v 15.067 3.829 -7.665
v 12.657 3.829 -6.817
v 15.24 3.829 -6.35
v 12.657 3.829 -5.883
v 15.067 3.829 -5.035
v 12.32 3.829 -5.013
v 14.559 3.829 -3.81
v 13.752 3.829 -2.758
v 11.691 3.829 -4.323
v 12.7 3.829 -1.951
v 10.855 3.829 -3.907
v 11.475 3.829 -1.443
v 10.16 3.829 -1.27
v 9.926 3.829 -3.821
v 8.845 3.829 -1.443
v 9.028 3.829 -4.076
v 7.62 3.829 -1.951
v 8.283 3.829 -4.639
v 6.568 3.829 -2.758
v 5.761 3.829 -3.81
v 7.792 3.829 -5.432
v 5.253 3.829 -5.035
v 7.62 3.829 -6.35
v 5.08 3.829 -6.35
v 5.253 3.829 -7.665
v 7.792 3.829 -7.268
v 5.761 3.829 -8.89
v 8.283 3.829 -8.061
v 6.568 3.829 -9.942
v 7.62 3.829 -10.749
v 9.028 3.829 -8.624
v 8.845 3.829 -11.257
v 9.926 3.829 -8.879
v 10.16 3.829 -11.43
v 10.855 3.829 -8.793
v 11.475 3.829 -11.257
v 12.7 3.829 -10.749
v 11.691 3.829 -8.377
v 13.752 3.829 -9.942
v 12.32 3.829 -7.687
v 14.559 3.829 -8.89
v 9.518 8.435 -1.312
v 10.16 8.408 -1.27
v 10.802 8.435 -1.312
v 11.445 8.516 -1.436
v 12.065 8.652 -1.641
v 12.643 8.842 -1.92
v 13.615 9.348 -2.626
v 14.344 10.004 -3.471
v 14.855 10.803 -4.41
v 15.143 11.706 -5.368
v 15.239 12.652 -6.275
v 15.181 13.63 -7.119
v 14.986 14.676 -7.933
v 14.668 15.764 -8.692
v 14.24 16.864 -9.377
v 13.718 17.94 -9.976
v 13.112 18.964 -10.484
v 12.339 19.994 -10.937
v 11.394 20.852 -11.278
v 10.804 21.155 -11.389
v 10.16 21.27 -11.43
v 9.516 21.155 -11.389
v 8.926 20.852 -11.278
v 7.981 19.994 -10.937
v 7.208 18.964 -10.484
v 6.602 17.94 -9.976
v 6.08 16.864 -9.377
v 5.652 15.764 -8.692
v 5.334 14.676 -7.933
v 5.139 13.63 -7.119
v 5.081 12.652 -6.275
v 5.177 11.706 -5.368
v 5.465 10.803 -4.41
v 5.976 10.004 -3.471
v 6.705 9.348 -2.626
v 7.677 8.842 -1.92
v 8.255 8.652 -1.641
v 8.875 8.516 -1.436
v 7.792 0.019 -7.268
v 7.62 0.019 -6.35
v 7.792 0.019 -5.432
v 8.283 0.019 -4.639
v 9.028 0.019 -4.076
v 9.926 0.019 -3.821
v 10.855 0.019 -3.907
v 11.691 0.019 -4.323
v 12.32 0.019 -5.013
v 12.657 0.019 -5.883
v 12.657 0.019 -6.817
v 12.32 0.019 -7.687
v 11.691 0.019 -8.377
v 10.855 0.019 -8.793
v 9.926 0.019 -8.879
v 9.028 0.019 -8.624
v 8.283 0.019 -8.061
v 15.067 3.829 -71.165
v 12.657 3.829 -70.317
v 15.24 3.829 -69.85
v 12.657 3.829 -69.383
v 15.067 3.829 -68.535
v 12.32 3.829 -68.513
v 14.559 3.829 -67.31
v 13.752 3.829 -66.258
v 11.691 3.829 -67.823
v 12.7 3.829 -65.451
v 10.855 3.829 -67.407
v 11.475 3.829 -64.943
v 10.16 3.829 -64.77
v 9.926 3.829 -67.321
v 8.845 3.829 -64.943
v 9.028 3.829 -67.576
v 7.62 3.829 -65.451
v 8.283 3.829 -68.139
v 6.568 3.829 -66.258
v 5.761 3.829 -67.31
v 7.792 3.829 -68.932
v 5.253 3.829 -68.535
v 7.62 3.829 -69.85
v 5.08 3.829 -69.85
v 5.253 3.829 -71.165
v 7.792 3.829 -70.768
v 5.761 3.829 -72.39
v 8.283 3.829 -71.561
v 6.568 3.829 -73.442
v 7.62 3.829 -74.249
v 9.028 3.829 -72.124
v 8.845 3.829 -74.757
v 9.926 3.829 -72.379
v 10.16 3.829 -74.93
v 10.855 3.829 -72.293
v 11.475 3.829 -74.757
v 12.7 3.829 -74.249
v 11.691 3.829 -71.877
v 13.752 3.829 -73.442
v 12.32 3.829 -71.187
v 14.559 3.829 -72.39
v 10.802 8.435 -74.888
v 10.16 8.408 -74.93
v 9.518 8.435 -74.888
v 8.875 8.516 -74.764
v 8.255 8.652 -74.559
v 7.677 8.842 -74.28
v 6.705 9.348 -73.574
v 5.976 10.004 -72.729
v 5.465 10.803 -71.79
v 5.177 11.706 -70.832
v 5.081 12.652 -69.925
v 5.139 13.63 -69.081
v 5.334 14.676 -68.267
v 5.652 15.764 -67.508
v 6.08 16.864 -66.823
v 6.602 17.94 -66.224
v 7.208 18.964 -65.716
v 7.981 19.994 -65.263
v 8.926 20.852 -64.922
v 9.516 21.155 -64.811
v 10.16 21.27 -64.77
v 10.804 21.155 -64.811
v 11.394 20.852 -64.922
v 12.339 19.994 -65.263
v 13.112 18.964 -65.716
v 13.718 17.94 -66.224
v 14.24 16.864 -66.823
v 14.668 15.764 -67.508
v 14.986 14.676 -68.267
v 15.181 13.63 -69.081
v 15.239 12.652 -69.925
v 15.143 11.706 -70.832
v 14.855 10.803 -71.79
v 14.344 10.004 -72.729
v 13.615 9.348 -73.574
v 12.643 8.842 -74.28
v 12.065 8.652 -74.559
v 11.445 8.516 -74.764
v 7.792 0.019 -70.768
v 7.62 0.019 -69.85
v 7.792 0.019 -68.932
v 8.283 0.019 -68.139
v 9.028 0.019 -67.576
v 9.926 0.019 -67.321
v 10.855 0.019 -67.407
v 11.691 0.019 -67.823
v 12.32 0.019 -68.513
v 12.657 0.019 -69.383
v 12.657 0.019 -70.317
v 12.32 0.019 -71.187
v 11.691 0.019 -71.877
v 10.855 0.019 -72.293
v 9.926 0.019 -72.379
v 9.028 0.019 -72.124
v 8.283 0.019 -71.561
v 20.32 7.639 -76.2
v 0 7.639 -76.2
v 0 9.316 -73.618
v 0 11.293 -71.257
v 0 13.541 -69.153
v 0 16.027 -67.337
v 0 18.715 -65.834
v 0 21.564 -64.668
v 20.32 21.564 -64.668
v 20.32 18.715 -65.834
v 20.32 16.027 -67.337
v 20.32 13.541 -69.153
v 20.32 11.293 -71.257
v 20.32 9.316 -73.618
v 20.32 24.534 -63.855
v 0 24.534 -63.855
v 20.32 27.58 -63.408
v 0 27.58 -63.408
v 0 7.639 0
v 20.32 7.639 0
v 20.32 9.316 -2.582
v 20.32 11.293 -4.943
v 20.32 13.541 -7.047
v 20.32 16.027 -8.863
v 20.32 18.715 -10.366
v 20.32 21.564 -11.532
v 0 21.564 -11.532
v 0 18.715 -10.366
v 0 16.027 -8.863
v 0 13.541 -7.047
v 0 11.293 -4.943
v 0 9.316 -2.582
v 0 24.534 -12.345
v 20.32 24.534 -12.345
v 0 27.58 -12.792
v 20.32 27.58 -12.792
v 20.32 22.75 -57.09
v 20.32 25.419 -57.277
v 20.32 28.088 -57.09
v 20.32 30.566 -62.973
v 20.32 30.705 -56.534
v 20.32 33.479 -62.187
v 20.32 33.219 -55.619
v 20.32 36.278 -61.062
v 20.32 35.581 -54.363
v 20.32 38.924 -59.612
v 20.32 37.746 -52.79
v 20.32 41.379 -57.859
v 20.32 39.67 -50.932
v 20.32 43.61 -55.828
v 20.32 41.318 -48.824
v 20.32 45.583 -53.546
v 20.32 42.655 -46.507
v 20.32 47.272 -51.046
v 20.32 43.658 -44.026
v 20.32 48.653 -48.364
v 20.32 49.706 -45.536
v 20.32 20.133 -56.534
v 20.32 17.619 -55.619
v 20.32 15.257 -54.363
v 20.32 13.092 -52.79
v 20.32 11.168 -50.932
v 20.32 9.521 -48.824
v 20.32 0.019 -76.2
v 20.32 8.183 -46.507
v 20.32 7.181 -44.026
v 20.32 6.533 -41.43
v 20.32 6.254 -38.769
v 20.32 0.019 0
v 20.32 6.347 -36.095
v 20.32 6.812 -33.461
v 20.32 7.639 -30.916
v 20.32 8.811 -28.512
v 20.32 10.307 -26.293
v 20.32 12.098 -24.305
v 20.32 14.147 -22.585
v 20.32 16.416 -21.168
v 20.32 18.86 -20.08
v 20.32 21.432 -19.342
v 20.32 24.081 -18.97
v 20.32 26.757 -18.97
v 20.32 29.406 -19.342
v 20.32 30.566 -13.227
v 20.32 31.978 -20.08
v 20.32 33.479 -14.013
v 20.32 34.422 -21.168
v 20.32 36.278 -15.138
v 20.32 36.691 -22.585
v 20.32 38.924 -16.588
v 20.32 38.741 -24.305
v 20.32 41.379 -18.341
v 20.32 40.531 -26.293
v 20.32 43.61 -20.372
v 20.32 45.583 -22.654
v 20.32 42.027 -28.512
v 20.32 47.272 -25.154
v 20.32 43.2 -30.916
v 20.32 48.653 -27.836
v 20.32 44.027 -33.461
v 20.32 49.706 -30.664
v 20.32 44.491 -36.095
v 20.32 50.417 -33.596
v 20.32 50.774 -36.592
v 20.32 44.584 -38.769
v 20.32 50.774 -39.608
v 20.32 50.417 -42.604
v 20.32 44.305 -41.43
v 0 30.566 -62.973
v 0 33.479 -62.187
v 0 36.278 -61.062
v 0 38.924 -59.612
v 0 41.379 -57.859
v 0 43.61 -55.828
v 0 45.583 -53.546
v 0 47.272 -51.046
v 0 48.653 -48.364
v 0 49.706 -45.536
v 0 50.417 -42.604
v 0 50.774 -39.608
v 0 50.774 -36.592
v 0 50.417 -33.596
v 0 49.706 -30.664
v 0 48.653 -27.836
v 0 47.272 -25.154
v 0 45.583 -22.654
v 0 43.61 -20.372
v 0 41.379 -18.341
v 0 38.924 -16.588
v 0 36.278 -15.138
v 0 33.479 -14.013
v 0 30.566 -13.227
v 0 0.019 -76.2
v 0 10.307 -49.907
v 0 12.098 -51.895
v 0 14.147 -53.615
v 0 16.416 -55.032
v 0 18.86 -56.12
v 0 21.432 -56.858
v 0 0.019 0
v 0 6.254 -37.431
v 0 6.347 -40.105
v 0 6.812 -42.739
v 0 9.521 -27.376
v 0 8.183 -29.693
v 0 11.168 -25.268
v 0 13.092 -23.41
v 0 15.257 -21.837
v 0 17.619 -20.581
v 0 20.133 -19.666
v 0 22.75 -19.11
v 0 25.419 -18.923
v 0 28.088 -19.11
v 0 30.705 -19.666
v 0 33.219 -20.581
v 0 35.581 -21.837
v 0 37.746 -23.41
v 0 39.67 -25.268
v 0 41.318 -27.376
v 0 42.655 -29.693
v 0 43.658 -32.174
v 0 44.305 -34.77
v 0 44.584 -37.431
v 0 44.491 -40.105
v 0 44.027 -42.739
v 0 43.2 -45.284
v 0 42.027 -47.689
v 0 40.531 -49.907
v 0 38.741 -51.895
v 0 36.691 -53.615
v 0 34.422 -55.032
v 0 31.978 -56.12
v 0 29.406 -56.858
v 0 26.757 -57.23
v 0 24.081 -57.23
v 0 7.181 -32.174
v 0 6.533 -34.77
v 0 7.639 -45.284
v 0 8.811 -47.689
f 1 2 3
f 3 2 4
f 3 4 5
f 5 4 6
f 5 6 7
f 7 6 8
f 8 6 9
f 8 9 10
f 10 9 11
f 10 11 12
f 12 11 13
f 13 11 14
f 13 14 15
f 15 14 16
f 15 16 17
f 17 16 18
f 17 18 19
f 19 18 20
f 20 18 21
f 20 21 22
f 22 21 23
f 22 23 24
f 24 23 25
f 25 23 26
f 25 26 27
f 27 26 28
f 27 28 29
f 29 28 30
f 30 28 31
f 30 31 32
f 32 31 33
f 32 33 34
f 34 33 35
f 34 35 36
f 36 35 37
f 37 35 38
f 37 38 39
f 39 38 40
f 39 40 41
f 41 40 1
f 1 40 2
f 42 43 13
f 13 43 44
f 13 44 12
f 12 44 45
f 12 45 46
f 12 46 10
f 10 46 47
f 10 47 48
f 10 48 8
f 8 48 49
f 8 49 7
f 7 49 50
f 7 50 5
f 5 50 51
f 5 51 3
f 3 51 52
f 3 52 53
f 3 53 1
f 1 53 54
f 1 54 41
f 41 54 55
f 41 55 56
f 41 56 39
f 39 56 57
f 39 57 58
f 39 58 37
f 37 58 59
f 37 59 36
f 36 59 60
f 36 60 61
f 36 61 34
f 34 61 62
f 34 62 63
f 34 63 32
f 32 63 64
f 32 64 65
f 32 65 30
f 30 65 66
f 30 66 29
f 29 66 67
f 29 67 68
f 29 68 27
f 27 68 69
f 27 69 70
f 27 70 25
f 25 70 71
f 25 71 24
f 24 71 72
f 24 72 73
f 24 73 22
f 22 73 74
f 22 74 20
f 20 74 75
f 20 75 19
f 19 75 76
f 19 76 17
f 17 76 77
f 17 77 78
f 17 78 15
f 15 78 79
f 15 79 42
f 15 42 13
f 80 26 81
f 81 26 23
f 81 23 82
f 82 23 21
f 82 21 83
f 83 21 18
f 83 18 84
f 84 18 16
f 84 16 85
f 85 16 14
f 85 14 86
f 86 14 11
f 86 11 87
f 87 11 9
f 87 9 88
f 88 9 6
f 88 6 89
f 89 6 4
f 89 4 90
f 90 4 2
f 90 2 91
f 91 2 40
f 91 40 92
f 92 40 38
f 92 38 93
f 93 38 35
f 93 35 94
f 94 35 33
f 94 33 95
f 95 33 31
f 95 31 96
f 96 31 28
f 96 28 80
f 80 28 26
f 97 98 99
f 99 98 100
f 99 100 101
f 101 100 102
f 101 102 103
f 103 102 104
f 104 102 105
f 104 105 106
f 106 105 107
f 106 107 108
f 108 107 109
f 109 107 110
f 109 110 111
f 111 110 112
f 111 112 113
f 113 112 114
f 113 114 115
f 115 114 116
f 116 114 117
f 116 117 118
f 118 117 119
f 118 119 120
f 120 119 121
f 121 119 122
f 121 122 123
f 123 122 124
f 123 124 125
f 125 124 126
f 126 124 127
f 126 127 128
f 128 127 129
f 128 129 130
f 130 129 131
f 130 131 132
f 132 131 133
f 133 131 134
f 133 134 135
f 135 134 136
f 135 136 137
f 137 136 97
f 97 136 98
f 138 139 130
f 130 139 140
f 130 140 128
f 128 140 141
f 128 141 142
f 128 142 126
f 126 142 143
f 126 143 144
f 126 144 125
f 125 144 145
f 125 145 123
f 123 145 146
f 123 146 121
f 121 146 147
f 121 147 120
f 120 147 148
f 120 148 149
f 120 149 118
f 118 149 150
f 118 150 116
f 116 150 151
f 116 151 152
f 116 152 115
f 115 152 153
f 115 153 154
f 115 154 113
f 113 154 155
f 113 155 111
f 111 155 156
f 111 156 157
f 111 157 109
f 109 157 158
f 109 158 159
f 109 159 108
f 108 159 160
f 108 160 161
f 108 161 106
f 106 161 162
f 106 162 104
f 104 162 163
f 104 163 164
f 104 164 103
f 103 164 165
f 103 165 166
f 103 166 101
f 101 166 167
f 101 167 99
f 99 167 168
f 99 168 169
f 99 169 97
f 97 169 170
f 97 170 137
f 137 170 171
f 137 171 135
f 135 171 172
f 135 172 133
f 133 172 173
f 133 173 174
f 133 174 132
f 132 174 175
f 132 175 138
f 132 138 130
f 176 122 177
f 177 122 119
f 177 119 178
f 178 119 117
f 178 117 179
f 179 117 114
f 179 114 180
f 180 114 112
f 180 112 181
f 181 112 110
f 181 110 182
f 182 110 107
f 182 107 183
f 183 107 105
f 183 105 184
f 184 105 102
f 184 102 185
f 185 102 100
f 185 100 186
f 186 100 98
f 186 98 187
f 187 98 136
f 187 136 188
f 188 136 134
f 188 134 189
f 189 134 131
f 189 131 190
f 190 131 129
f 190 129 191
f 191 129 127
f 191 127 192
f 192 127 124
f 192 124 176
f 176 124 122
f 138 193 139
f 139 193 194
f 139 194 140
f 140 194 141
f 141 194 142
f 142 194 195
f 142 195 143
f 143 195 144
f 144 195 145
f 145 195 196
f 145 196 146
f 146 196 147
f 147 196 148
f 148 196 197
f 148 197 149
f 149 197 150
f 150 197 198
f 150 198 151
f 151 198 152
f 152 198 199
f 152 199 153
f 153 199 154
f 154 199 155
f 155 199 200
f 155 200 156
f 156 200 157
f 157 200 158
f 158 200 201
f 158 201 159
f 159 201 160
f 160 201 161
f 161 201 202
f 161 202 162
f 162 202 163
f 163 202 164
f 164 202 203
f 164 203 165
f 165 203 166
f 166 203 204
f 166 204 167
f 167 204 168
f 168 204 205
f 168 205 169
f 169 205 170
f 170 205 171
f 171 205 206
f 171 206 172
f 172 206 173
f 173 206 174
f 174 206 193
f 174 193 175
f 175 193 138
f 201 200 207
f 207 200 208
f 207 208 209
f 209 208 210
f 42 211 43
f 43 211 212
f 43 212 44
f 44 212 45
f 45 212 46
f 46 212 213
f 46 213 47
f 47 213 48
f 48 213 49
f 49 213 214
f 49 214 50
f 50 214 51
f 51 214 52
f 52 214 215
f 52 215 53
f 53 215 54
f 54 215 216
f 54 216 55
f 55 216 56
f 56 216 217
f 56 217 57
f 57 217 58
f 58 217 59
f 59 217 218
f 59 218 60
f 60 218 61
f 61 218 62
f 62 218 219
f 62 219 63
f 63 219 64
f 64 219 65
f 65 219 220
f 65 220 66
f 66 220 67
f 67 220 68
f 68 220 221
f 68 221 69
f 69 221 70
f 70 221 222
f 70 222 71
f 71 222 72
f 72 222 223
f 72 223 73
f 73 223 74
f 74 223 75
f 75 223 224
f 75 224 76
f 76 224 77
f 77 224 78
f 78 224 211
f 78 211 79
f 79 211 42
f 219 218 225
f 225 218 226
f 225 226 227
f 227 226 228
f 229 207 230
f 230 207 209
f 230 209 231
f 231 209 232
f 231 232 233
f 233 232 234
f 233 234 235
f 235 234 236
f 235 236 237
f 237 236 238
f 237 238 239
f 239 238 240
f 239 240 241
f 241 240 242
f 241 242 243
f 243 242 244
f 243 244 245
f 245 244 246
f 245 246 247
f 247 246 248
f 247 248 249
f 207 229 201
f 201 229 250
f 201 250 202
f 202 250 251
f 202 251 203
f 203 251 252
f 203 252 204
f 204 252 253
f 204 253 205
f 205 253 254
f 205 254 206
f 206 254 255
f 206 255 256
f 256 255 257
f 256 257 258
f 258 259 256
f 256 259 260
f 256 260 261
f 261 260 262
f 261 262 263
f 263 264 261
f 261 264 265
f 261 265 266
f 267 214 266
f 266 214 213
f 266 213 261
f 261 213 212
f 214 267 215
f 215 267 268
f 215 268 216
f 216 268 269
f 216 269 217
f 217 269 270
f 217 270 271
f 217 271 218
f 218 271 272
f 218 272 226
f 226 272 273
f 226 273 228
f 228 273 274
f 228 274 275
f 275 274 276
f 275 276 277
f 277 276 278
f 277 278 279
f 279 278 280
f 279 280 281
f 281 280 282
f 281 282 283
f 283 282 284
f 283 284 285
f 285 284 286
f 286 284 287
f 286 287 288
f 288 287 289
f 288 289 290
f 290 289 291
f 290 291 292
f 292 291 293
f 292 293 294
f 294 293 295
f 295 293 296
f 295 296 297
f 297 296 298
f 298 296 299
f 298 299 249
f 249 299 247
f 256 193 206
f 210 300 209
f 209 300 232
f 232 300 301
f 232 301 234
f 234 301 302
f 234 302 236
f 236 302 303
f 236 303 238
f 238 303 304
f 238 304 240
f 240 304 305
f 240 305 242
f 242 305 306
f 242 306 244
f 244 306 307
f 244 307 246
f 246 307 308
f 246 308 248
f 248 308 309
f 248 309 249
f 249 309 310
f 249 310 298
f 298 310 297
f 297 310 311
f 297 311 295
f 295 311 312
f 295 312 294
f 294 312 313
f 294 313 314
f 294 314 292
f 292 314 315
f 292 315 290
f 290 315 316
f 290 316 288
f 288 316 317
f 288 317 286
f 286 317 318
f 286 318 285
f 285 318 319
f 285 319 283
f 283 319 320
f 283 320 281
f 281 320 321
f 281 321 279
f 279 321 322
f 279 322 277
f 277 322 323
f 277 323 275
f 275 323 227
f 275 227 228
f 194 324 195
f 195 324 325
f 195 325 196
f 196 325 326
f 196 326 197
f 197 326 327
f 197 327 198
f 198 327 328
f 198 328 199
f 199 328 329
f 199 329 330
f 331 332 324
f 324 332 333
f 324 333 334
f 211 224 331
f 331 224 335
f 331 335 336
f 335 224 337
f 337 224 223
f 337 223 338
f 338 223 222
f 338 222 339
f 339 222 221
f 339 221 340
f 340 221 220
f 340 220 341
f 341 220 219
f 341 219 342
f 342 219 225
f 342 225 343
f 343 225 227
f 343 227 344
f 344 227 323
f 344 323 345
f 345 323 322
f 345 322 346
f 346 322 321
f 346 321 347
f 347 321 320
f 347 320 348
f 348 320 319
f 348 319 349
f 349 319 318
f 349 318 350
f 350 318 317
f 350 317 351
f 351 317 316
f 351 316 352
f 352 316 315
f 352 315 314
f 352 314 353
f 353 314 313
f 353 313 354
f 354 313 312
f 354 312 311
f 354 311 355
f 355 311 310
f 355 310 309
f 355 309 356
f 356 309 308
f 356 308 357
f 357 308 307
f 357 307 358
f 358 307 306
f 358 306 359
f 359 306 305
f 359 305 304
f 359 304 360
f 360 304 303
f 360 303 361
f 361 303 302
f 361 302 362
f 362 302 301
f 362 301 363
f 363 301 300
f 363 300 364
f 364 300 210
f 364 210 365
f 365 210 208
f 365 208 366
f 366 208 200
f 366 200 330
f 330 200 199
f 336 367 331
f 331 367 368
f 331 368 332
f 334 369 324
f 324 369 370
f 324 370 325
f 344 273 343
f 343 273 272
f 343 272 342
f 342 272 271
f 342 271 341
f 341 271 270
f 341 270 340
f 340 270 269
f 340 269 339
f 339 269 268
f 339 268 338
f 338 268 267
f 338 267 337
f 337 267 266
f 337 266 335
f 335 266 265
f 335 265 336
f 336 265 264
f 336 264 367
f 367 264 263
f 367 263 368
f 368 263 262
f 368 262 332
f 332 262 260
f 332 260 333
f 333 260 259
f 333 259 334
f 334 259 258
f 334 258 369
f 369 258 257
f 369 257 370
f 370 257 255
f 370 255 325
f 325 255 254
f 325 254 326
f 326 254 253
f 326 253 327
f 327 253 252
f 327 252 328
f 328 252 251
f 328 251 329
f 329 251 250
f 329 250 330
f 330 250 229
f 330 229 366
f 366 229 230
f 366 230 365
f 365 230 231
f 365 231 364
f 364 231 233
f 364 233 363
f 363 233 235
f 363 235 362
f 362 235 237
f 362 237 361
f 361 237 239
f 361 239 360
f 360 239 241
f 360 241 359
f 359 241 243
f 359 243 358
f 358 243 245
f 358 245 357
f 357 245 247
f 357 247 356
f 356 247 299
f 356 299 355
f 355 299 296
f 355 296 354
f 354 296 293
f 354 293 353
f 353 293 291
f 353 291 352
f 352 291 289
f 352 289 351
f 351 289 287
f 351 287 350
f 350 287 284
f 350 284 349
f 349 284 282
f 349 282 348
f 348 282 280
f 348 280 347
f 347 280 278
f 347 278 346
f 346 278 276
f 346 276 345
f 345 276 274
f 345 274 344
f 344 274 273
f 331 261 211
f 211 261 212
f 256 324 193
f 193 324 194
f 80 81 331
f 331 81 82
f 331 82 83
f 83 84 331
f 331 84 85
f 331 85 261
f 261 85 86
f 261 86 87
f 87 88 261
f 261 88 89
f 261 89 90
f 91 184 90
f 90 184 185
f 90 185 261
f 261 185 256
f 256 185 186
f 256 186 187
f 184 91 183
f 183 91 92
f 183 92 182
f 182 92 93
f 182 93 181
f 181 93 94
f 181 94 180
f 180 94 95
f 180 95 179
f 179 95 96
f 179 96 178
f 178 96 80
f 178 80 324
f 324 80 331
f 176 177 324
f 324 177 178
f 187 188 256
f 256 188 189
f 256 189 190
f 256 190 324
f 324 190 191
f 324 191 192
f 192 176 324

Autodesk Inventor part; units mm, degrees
ref_plane "YZ Plane" through (0, 0, 0) normal (1, 0, 0) x (0, 1, 0)
ref_plane "XZ Plane" through (0, 0, 0) normal (0, 1, 0) x (-1, 0, 0)
ref_plane "XY Plane" through (0, 0, 0) normal (0, 0, 1) x (1, 0, 0)
sketch "Sketch1" plane through (0, 0, 0) normal (0, 1, 0) x (-1, 0, 0)
  line L0 (0, 0) -> (-20.32, 0)
  line L1 (-20.32, 0) -> (-20.32, -76.2)
  line L2 (-20.32, -76.2) -> (0, -76.2)
  line L3 (0, -76.2) -> (0, 0)
  dimension "d0" = 20.32
  dimension "d1" = 76.2
extrude "Extrusion1" add sketch "Sketch1" along normal blind 7.62
sketch "Sketch2" plane through (0, 7.62, 0) normal (0, 1, 0) x (1, 0, 0)
  line L0 (0, 76.2) -> (0, 0) projected
  line L1 (0, 0) -> (0, 12.7)
  line L2 (0, 12.7) -> (20.32, 12.7)
  line L3 (20.32, 12.7) -> (20.32, 63.5)
  line L4 (20.32, 63.5) -> (0, 63.5)
  line L5 (0, 63.5) -> (0, 12.7)
  dimension "d4" = 12.7
  dimension "d5" = 20.32
  dimension "d6" = 50.8
extrude "Extrusion2" add sketch "Sketch2" along normal blind 43.18
sketch "Sketch3" plane through (20.32, 0, 0) normal (1, 0, 0) x (0, 0, -1)
  line L0 (12.7, 50.8) -> (63.5, 50.8) projected
  line L1 (38.1, 50.8) -> (38.1, 25.4)
  circle A0 centre (38.1, 25.4) radius 19.177
  point P0 (0, 0)
  dimension "d9" = 25.4
  dimension "d10" = 38.354
extrude "Extrusion3" cut sketch "Sketch3" against normal blind 43.18
fillet "Fillet1" radius 25.4 2 edges at (10.16, 50.8, -12.7) (10.16, 50.8, -63.5)
sketch "Sketch4" plane through (0, 7.62, 0) normal (0, 1, 0) x (1, 0, 0)
  line L0 (0, 0) -> (20.32, 0) projected
  line L1 (10.16, 0) -> (10.16, 6.35)
  line L2 (20.32, 76.2) -> (0, 76.2) projected
  line L3 (10.16, 76.2) -> (10.16, 69.85)
  dimension "d14" = 6.35
  dimension "d15" = 6.35
fillet "Fillet2" radius 25.4 1 edges at (10.16, 7.62, -12.7)
fillet "Fillet3" radius 25.4 1 edges at (10.16, 7.62, -63.5)
hole "Hole1" at (10.16, 7.62, -6.35) at (10.16, 7.62, -69.85) direction (0, -1, 0) diameter 5.08 end through all counterbore diameter 10.16 counterbore depth 3.81
sketch "Sketch5" plane through (10.16, 7.62, -6.35) normal (0, -1, 0) x (1, 0, 0)
  circle A0 centre (0, 0) radius 5.08
  circle A1 centre (0, -63.5) radius 2.54 projected
  line L0 (-2.54, -63.5) -> (0, -63.5)
  circle A2 centre (0, -63.5) radius 5.08
  point P0 (-10.16, 6.35)
  dimension "d25" = 10.16
  dimension "d26" = 10.16
extrude "Extrusion4" cut sketch "Sketch5" against normal blind 43.18 contours A0 | A1 | A2
properties part number "Motor Mount Back Side"
